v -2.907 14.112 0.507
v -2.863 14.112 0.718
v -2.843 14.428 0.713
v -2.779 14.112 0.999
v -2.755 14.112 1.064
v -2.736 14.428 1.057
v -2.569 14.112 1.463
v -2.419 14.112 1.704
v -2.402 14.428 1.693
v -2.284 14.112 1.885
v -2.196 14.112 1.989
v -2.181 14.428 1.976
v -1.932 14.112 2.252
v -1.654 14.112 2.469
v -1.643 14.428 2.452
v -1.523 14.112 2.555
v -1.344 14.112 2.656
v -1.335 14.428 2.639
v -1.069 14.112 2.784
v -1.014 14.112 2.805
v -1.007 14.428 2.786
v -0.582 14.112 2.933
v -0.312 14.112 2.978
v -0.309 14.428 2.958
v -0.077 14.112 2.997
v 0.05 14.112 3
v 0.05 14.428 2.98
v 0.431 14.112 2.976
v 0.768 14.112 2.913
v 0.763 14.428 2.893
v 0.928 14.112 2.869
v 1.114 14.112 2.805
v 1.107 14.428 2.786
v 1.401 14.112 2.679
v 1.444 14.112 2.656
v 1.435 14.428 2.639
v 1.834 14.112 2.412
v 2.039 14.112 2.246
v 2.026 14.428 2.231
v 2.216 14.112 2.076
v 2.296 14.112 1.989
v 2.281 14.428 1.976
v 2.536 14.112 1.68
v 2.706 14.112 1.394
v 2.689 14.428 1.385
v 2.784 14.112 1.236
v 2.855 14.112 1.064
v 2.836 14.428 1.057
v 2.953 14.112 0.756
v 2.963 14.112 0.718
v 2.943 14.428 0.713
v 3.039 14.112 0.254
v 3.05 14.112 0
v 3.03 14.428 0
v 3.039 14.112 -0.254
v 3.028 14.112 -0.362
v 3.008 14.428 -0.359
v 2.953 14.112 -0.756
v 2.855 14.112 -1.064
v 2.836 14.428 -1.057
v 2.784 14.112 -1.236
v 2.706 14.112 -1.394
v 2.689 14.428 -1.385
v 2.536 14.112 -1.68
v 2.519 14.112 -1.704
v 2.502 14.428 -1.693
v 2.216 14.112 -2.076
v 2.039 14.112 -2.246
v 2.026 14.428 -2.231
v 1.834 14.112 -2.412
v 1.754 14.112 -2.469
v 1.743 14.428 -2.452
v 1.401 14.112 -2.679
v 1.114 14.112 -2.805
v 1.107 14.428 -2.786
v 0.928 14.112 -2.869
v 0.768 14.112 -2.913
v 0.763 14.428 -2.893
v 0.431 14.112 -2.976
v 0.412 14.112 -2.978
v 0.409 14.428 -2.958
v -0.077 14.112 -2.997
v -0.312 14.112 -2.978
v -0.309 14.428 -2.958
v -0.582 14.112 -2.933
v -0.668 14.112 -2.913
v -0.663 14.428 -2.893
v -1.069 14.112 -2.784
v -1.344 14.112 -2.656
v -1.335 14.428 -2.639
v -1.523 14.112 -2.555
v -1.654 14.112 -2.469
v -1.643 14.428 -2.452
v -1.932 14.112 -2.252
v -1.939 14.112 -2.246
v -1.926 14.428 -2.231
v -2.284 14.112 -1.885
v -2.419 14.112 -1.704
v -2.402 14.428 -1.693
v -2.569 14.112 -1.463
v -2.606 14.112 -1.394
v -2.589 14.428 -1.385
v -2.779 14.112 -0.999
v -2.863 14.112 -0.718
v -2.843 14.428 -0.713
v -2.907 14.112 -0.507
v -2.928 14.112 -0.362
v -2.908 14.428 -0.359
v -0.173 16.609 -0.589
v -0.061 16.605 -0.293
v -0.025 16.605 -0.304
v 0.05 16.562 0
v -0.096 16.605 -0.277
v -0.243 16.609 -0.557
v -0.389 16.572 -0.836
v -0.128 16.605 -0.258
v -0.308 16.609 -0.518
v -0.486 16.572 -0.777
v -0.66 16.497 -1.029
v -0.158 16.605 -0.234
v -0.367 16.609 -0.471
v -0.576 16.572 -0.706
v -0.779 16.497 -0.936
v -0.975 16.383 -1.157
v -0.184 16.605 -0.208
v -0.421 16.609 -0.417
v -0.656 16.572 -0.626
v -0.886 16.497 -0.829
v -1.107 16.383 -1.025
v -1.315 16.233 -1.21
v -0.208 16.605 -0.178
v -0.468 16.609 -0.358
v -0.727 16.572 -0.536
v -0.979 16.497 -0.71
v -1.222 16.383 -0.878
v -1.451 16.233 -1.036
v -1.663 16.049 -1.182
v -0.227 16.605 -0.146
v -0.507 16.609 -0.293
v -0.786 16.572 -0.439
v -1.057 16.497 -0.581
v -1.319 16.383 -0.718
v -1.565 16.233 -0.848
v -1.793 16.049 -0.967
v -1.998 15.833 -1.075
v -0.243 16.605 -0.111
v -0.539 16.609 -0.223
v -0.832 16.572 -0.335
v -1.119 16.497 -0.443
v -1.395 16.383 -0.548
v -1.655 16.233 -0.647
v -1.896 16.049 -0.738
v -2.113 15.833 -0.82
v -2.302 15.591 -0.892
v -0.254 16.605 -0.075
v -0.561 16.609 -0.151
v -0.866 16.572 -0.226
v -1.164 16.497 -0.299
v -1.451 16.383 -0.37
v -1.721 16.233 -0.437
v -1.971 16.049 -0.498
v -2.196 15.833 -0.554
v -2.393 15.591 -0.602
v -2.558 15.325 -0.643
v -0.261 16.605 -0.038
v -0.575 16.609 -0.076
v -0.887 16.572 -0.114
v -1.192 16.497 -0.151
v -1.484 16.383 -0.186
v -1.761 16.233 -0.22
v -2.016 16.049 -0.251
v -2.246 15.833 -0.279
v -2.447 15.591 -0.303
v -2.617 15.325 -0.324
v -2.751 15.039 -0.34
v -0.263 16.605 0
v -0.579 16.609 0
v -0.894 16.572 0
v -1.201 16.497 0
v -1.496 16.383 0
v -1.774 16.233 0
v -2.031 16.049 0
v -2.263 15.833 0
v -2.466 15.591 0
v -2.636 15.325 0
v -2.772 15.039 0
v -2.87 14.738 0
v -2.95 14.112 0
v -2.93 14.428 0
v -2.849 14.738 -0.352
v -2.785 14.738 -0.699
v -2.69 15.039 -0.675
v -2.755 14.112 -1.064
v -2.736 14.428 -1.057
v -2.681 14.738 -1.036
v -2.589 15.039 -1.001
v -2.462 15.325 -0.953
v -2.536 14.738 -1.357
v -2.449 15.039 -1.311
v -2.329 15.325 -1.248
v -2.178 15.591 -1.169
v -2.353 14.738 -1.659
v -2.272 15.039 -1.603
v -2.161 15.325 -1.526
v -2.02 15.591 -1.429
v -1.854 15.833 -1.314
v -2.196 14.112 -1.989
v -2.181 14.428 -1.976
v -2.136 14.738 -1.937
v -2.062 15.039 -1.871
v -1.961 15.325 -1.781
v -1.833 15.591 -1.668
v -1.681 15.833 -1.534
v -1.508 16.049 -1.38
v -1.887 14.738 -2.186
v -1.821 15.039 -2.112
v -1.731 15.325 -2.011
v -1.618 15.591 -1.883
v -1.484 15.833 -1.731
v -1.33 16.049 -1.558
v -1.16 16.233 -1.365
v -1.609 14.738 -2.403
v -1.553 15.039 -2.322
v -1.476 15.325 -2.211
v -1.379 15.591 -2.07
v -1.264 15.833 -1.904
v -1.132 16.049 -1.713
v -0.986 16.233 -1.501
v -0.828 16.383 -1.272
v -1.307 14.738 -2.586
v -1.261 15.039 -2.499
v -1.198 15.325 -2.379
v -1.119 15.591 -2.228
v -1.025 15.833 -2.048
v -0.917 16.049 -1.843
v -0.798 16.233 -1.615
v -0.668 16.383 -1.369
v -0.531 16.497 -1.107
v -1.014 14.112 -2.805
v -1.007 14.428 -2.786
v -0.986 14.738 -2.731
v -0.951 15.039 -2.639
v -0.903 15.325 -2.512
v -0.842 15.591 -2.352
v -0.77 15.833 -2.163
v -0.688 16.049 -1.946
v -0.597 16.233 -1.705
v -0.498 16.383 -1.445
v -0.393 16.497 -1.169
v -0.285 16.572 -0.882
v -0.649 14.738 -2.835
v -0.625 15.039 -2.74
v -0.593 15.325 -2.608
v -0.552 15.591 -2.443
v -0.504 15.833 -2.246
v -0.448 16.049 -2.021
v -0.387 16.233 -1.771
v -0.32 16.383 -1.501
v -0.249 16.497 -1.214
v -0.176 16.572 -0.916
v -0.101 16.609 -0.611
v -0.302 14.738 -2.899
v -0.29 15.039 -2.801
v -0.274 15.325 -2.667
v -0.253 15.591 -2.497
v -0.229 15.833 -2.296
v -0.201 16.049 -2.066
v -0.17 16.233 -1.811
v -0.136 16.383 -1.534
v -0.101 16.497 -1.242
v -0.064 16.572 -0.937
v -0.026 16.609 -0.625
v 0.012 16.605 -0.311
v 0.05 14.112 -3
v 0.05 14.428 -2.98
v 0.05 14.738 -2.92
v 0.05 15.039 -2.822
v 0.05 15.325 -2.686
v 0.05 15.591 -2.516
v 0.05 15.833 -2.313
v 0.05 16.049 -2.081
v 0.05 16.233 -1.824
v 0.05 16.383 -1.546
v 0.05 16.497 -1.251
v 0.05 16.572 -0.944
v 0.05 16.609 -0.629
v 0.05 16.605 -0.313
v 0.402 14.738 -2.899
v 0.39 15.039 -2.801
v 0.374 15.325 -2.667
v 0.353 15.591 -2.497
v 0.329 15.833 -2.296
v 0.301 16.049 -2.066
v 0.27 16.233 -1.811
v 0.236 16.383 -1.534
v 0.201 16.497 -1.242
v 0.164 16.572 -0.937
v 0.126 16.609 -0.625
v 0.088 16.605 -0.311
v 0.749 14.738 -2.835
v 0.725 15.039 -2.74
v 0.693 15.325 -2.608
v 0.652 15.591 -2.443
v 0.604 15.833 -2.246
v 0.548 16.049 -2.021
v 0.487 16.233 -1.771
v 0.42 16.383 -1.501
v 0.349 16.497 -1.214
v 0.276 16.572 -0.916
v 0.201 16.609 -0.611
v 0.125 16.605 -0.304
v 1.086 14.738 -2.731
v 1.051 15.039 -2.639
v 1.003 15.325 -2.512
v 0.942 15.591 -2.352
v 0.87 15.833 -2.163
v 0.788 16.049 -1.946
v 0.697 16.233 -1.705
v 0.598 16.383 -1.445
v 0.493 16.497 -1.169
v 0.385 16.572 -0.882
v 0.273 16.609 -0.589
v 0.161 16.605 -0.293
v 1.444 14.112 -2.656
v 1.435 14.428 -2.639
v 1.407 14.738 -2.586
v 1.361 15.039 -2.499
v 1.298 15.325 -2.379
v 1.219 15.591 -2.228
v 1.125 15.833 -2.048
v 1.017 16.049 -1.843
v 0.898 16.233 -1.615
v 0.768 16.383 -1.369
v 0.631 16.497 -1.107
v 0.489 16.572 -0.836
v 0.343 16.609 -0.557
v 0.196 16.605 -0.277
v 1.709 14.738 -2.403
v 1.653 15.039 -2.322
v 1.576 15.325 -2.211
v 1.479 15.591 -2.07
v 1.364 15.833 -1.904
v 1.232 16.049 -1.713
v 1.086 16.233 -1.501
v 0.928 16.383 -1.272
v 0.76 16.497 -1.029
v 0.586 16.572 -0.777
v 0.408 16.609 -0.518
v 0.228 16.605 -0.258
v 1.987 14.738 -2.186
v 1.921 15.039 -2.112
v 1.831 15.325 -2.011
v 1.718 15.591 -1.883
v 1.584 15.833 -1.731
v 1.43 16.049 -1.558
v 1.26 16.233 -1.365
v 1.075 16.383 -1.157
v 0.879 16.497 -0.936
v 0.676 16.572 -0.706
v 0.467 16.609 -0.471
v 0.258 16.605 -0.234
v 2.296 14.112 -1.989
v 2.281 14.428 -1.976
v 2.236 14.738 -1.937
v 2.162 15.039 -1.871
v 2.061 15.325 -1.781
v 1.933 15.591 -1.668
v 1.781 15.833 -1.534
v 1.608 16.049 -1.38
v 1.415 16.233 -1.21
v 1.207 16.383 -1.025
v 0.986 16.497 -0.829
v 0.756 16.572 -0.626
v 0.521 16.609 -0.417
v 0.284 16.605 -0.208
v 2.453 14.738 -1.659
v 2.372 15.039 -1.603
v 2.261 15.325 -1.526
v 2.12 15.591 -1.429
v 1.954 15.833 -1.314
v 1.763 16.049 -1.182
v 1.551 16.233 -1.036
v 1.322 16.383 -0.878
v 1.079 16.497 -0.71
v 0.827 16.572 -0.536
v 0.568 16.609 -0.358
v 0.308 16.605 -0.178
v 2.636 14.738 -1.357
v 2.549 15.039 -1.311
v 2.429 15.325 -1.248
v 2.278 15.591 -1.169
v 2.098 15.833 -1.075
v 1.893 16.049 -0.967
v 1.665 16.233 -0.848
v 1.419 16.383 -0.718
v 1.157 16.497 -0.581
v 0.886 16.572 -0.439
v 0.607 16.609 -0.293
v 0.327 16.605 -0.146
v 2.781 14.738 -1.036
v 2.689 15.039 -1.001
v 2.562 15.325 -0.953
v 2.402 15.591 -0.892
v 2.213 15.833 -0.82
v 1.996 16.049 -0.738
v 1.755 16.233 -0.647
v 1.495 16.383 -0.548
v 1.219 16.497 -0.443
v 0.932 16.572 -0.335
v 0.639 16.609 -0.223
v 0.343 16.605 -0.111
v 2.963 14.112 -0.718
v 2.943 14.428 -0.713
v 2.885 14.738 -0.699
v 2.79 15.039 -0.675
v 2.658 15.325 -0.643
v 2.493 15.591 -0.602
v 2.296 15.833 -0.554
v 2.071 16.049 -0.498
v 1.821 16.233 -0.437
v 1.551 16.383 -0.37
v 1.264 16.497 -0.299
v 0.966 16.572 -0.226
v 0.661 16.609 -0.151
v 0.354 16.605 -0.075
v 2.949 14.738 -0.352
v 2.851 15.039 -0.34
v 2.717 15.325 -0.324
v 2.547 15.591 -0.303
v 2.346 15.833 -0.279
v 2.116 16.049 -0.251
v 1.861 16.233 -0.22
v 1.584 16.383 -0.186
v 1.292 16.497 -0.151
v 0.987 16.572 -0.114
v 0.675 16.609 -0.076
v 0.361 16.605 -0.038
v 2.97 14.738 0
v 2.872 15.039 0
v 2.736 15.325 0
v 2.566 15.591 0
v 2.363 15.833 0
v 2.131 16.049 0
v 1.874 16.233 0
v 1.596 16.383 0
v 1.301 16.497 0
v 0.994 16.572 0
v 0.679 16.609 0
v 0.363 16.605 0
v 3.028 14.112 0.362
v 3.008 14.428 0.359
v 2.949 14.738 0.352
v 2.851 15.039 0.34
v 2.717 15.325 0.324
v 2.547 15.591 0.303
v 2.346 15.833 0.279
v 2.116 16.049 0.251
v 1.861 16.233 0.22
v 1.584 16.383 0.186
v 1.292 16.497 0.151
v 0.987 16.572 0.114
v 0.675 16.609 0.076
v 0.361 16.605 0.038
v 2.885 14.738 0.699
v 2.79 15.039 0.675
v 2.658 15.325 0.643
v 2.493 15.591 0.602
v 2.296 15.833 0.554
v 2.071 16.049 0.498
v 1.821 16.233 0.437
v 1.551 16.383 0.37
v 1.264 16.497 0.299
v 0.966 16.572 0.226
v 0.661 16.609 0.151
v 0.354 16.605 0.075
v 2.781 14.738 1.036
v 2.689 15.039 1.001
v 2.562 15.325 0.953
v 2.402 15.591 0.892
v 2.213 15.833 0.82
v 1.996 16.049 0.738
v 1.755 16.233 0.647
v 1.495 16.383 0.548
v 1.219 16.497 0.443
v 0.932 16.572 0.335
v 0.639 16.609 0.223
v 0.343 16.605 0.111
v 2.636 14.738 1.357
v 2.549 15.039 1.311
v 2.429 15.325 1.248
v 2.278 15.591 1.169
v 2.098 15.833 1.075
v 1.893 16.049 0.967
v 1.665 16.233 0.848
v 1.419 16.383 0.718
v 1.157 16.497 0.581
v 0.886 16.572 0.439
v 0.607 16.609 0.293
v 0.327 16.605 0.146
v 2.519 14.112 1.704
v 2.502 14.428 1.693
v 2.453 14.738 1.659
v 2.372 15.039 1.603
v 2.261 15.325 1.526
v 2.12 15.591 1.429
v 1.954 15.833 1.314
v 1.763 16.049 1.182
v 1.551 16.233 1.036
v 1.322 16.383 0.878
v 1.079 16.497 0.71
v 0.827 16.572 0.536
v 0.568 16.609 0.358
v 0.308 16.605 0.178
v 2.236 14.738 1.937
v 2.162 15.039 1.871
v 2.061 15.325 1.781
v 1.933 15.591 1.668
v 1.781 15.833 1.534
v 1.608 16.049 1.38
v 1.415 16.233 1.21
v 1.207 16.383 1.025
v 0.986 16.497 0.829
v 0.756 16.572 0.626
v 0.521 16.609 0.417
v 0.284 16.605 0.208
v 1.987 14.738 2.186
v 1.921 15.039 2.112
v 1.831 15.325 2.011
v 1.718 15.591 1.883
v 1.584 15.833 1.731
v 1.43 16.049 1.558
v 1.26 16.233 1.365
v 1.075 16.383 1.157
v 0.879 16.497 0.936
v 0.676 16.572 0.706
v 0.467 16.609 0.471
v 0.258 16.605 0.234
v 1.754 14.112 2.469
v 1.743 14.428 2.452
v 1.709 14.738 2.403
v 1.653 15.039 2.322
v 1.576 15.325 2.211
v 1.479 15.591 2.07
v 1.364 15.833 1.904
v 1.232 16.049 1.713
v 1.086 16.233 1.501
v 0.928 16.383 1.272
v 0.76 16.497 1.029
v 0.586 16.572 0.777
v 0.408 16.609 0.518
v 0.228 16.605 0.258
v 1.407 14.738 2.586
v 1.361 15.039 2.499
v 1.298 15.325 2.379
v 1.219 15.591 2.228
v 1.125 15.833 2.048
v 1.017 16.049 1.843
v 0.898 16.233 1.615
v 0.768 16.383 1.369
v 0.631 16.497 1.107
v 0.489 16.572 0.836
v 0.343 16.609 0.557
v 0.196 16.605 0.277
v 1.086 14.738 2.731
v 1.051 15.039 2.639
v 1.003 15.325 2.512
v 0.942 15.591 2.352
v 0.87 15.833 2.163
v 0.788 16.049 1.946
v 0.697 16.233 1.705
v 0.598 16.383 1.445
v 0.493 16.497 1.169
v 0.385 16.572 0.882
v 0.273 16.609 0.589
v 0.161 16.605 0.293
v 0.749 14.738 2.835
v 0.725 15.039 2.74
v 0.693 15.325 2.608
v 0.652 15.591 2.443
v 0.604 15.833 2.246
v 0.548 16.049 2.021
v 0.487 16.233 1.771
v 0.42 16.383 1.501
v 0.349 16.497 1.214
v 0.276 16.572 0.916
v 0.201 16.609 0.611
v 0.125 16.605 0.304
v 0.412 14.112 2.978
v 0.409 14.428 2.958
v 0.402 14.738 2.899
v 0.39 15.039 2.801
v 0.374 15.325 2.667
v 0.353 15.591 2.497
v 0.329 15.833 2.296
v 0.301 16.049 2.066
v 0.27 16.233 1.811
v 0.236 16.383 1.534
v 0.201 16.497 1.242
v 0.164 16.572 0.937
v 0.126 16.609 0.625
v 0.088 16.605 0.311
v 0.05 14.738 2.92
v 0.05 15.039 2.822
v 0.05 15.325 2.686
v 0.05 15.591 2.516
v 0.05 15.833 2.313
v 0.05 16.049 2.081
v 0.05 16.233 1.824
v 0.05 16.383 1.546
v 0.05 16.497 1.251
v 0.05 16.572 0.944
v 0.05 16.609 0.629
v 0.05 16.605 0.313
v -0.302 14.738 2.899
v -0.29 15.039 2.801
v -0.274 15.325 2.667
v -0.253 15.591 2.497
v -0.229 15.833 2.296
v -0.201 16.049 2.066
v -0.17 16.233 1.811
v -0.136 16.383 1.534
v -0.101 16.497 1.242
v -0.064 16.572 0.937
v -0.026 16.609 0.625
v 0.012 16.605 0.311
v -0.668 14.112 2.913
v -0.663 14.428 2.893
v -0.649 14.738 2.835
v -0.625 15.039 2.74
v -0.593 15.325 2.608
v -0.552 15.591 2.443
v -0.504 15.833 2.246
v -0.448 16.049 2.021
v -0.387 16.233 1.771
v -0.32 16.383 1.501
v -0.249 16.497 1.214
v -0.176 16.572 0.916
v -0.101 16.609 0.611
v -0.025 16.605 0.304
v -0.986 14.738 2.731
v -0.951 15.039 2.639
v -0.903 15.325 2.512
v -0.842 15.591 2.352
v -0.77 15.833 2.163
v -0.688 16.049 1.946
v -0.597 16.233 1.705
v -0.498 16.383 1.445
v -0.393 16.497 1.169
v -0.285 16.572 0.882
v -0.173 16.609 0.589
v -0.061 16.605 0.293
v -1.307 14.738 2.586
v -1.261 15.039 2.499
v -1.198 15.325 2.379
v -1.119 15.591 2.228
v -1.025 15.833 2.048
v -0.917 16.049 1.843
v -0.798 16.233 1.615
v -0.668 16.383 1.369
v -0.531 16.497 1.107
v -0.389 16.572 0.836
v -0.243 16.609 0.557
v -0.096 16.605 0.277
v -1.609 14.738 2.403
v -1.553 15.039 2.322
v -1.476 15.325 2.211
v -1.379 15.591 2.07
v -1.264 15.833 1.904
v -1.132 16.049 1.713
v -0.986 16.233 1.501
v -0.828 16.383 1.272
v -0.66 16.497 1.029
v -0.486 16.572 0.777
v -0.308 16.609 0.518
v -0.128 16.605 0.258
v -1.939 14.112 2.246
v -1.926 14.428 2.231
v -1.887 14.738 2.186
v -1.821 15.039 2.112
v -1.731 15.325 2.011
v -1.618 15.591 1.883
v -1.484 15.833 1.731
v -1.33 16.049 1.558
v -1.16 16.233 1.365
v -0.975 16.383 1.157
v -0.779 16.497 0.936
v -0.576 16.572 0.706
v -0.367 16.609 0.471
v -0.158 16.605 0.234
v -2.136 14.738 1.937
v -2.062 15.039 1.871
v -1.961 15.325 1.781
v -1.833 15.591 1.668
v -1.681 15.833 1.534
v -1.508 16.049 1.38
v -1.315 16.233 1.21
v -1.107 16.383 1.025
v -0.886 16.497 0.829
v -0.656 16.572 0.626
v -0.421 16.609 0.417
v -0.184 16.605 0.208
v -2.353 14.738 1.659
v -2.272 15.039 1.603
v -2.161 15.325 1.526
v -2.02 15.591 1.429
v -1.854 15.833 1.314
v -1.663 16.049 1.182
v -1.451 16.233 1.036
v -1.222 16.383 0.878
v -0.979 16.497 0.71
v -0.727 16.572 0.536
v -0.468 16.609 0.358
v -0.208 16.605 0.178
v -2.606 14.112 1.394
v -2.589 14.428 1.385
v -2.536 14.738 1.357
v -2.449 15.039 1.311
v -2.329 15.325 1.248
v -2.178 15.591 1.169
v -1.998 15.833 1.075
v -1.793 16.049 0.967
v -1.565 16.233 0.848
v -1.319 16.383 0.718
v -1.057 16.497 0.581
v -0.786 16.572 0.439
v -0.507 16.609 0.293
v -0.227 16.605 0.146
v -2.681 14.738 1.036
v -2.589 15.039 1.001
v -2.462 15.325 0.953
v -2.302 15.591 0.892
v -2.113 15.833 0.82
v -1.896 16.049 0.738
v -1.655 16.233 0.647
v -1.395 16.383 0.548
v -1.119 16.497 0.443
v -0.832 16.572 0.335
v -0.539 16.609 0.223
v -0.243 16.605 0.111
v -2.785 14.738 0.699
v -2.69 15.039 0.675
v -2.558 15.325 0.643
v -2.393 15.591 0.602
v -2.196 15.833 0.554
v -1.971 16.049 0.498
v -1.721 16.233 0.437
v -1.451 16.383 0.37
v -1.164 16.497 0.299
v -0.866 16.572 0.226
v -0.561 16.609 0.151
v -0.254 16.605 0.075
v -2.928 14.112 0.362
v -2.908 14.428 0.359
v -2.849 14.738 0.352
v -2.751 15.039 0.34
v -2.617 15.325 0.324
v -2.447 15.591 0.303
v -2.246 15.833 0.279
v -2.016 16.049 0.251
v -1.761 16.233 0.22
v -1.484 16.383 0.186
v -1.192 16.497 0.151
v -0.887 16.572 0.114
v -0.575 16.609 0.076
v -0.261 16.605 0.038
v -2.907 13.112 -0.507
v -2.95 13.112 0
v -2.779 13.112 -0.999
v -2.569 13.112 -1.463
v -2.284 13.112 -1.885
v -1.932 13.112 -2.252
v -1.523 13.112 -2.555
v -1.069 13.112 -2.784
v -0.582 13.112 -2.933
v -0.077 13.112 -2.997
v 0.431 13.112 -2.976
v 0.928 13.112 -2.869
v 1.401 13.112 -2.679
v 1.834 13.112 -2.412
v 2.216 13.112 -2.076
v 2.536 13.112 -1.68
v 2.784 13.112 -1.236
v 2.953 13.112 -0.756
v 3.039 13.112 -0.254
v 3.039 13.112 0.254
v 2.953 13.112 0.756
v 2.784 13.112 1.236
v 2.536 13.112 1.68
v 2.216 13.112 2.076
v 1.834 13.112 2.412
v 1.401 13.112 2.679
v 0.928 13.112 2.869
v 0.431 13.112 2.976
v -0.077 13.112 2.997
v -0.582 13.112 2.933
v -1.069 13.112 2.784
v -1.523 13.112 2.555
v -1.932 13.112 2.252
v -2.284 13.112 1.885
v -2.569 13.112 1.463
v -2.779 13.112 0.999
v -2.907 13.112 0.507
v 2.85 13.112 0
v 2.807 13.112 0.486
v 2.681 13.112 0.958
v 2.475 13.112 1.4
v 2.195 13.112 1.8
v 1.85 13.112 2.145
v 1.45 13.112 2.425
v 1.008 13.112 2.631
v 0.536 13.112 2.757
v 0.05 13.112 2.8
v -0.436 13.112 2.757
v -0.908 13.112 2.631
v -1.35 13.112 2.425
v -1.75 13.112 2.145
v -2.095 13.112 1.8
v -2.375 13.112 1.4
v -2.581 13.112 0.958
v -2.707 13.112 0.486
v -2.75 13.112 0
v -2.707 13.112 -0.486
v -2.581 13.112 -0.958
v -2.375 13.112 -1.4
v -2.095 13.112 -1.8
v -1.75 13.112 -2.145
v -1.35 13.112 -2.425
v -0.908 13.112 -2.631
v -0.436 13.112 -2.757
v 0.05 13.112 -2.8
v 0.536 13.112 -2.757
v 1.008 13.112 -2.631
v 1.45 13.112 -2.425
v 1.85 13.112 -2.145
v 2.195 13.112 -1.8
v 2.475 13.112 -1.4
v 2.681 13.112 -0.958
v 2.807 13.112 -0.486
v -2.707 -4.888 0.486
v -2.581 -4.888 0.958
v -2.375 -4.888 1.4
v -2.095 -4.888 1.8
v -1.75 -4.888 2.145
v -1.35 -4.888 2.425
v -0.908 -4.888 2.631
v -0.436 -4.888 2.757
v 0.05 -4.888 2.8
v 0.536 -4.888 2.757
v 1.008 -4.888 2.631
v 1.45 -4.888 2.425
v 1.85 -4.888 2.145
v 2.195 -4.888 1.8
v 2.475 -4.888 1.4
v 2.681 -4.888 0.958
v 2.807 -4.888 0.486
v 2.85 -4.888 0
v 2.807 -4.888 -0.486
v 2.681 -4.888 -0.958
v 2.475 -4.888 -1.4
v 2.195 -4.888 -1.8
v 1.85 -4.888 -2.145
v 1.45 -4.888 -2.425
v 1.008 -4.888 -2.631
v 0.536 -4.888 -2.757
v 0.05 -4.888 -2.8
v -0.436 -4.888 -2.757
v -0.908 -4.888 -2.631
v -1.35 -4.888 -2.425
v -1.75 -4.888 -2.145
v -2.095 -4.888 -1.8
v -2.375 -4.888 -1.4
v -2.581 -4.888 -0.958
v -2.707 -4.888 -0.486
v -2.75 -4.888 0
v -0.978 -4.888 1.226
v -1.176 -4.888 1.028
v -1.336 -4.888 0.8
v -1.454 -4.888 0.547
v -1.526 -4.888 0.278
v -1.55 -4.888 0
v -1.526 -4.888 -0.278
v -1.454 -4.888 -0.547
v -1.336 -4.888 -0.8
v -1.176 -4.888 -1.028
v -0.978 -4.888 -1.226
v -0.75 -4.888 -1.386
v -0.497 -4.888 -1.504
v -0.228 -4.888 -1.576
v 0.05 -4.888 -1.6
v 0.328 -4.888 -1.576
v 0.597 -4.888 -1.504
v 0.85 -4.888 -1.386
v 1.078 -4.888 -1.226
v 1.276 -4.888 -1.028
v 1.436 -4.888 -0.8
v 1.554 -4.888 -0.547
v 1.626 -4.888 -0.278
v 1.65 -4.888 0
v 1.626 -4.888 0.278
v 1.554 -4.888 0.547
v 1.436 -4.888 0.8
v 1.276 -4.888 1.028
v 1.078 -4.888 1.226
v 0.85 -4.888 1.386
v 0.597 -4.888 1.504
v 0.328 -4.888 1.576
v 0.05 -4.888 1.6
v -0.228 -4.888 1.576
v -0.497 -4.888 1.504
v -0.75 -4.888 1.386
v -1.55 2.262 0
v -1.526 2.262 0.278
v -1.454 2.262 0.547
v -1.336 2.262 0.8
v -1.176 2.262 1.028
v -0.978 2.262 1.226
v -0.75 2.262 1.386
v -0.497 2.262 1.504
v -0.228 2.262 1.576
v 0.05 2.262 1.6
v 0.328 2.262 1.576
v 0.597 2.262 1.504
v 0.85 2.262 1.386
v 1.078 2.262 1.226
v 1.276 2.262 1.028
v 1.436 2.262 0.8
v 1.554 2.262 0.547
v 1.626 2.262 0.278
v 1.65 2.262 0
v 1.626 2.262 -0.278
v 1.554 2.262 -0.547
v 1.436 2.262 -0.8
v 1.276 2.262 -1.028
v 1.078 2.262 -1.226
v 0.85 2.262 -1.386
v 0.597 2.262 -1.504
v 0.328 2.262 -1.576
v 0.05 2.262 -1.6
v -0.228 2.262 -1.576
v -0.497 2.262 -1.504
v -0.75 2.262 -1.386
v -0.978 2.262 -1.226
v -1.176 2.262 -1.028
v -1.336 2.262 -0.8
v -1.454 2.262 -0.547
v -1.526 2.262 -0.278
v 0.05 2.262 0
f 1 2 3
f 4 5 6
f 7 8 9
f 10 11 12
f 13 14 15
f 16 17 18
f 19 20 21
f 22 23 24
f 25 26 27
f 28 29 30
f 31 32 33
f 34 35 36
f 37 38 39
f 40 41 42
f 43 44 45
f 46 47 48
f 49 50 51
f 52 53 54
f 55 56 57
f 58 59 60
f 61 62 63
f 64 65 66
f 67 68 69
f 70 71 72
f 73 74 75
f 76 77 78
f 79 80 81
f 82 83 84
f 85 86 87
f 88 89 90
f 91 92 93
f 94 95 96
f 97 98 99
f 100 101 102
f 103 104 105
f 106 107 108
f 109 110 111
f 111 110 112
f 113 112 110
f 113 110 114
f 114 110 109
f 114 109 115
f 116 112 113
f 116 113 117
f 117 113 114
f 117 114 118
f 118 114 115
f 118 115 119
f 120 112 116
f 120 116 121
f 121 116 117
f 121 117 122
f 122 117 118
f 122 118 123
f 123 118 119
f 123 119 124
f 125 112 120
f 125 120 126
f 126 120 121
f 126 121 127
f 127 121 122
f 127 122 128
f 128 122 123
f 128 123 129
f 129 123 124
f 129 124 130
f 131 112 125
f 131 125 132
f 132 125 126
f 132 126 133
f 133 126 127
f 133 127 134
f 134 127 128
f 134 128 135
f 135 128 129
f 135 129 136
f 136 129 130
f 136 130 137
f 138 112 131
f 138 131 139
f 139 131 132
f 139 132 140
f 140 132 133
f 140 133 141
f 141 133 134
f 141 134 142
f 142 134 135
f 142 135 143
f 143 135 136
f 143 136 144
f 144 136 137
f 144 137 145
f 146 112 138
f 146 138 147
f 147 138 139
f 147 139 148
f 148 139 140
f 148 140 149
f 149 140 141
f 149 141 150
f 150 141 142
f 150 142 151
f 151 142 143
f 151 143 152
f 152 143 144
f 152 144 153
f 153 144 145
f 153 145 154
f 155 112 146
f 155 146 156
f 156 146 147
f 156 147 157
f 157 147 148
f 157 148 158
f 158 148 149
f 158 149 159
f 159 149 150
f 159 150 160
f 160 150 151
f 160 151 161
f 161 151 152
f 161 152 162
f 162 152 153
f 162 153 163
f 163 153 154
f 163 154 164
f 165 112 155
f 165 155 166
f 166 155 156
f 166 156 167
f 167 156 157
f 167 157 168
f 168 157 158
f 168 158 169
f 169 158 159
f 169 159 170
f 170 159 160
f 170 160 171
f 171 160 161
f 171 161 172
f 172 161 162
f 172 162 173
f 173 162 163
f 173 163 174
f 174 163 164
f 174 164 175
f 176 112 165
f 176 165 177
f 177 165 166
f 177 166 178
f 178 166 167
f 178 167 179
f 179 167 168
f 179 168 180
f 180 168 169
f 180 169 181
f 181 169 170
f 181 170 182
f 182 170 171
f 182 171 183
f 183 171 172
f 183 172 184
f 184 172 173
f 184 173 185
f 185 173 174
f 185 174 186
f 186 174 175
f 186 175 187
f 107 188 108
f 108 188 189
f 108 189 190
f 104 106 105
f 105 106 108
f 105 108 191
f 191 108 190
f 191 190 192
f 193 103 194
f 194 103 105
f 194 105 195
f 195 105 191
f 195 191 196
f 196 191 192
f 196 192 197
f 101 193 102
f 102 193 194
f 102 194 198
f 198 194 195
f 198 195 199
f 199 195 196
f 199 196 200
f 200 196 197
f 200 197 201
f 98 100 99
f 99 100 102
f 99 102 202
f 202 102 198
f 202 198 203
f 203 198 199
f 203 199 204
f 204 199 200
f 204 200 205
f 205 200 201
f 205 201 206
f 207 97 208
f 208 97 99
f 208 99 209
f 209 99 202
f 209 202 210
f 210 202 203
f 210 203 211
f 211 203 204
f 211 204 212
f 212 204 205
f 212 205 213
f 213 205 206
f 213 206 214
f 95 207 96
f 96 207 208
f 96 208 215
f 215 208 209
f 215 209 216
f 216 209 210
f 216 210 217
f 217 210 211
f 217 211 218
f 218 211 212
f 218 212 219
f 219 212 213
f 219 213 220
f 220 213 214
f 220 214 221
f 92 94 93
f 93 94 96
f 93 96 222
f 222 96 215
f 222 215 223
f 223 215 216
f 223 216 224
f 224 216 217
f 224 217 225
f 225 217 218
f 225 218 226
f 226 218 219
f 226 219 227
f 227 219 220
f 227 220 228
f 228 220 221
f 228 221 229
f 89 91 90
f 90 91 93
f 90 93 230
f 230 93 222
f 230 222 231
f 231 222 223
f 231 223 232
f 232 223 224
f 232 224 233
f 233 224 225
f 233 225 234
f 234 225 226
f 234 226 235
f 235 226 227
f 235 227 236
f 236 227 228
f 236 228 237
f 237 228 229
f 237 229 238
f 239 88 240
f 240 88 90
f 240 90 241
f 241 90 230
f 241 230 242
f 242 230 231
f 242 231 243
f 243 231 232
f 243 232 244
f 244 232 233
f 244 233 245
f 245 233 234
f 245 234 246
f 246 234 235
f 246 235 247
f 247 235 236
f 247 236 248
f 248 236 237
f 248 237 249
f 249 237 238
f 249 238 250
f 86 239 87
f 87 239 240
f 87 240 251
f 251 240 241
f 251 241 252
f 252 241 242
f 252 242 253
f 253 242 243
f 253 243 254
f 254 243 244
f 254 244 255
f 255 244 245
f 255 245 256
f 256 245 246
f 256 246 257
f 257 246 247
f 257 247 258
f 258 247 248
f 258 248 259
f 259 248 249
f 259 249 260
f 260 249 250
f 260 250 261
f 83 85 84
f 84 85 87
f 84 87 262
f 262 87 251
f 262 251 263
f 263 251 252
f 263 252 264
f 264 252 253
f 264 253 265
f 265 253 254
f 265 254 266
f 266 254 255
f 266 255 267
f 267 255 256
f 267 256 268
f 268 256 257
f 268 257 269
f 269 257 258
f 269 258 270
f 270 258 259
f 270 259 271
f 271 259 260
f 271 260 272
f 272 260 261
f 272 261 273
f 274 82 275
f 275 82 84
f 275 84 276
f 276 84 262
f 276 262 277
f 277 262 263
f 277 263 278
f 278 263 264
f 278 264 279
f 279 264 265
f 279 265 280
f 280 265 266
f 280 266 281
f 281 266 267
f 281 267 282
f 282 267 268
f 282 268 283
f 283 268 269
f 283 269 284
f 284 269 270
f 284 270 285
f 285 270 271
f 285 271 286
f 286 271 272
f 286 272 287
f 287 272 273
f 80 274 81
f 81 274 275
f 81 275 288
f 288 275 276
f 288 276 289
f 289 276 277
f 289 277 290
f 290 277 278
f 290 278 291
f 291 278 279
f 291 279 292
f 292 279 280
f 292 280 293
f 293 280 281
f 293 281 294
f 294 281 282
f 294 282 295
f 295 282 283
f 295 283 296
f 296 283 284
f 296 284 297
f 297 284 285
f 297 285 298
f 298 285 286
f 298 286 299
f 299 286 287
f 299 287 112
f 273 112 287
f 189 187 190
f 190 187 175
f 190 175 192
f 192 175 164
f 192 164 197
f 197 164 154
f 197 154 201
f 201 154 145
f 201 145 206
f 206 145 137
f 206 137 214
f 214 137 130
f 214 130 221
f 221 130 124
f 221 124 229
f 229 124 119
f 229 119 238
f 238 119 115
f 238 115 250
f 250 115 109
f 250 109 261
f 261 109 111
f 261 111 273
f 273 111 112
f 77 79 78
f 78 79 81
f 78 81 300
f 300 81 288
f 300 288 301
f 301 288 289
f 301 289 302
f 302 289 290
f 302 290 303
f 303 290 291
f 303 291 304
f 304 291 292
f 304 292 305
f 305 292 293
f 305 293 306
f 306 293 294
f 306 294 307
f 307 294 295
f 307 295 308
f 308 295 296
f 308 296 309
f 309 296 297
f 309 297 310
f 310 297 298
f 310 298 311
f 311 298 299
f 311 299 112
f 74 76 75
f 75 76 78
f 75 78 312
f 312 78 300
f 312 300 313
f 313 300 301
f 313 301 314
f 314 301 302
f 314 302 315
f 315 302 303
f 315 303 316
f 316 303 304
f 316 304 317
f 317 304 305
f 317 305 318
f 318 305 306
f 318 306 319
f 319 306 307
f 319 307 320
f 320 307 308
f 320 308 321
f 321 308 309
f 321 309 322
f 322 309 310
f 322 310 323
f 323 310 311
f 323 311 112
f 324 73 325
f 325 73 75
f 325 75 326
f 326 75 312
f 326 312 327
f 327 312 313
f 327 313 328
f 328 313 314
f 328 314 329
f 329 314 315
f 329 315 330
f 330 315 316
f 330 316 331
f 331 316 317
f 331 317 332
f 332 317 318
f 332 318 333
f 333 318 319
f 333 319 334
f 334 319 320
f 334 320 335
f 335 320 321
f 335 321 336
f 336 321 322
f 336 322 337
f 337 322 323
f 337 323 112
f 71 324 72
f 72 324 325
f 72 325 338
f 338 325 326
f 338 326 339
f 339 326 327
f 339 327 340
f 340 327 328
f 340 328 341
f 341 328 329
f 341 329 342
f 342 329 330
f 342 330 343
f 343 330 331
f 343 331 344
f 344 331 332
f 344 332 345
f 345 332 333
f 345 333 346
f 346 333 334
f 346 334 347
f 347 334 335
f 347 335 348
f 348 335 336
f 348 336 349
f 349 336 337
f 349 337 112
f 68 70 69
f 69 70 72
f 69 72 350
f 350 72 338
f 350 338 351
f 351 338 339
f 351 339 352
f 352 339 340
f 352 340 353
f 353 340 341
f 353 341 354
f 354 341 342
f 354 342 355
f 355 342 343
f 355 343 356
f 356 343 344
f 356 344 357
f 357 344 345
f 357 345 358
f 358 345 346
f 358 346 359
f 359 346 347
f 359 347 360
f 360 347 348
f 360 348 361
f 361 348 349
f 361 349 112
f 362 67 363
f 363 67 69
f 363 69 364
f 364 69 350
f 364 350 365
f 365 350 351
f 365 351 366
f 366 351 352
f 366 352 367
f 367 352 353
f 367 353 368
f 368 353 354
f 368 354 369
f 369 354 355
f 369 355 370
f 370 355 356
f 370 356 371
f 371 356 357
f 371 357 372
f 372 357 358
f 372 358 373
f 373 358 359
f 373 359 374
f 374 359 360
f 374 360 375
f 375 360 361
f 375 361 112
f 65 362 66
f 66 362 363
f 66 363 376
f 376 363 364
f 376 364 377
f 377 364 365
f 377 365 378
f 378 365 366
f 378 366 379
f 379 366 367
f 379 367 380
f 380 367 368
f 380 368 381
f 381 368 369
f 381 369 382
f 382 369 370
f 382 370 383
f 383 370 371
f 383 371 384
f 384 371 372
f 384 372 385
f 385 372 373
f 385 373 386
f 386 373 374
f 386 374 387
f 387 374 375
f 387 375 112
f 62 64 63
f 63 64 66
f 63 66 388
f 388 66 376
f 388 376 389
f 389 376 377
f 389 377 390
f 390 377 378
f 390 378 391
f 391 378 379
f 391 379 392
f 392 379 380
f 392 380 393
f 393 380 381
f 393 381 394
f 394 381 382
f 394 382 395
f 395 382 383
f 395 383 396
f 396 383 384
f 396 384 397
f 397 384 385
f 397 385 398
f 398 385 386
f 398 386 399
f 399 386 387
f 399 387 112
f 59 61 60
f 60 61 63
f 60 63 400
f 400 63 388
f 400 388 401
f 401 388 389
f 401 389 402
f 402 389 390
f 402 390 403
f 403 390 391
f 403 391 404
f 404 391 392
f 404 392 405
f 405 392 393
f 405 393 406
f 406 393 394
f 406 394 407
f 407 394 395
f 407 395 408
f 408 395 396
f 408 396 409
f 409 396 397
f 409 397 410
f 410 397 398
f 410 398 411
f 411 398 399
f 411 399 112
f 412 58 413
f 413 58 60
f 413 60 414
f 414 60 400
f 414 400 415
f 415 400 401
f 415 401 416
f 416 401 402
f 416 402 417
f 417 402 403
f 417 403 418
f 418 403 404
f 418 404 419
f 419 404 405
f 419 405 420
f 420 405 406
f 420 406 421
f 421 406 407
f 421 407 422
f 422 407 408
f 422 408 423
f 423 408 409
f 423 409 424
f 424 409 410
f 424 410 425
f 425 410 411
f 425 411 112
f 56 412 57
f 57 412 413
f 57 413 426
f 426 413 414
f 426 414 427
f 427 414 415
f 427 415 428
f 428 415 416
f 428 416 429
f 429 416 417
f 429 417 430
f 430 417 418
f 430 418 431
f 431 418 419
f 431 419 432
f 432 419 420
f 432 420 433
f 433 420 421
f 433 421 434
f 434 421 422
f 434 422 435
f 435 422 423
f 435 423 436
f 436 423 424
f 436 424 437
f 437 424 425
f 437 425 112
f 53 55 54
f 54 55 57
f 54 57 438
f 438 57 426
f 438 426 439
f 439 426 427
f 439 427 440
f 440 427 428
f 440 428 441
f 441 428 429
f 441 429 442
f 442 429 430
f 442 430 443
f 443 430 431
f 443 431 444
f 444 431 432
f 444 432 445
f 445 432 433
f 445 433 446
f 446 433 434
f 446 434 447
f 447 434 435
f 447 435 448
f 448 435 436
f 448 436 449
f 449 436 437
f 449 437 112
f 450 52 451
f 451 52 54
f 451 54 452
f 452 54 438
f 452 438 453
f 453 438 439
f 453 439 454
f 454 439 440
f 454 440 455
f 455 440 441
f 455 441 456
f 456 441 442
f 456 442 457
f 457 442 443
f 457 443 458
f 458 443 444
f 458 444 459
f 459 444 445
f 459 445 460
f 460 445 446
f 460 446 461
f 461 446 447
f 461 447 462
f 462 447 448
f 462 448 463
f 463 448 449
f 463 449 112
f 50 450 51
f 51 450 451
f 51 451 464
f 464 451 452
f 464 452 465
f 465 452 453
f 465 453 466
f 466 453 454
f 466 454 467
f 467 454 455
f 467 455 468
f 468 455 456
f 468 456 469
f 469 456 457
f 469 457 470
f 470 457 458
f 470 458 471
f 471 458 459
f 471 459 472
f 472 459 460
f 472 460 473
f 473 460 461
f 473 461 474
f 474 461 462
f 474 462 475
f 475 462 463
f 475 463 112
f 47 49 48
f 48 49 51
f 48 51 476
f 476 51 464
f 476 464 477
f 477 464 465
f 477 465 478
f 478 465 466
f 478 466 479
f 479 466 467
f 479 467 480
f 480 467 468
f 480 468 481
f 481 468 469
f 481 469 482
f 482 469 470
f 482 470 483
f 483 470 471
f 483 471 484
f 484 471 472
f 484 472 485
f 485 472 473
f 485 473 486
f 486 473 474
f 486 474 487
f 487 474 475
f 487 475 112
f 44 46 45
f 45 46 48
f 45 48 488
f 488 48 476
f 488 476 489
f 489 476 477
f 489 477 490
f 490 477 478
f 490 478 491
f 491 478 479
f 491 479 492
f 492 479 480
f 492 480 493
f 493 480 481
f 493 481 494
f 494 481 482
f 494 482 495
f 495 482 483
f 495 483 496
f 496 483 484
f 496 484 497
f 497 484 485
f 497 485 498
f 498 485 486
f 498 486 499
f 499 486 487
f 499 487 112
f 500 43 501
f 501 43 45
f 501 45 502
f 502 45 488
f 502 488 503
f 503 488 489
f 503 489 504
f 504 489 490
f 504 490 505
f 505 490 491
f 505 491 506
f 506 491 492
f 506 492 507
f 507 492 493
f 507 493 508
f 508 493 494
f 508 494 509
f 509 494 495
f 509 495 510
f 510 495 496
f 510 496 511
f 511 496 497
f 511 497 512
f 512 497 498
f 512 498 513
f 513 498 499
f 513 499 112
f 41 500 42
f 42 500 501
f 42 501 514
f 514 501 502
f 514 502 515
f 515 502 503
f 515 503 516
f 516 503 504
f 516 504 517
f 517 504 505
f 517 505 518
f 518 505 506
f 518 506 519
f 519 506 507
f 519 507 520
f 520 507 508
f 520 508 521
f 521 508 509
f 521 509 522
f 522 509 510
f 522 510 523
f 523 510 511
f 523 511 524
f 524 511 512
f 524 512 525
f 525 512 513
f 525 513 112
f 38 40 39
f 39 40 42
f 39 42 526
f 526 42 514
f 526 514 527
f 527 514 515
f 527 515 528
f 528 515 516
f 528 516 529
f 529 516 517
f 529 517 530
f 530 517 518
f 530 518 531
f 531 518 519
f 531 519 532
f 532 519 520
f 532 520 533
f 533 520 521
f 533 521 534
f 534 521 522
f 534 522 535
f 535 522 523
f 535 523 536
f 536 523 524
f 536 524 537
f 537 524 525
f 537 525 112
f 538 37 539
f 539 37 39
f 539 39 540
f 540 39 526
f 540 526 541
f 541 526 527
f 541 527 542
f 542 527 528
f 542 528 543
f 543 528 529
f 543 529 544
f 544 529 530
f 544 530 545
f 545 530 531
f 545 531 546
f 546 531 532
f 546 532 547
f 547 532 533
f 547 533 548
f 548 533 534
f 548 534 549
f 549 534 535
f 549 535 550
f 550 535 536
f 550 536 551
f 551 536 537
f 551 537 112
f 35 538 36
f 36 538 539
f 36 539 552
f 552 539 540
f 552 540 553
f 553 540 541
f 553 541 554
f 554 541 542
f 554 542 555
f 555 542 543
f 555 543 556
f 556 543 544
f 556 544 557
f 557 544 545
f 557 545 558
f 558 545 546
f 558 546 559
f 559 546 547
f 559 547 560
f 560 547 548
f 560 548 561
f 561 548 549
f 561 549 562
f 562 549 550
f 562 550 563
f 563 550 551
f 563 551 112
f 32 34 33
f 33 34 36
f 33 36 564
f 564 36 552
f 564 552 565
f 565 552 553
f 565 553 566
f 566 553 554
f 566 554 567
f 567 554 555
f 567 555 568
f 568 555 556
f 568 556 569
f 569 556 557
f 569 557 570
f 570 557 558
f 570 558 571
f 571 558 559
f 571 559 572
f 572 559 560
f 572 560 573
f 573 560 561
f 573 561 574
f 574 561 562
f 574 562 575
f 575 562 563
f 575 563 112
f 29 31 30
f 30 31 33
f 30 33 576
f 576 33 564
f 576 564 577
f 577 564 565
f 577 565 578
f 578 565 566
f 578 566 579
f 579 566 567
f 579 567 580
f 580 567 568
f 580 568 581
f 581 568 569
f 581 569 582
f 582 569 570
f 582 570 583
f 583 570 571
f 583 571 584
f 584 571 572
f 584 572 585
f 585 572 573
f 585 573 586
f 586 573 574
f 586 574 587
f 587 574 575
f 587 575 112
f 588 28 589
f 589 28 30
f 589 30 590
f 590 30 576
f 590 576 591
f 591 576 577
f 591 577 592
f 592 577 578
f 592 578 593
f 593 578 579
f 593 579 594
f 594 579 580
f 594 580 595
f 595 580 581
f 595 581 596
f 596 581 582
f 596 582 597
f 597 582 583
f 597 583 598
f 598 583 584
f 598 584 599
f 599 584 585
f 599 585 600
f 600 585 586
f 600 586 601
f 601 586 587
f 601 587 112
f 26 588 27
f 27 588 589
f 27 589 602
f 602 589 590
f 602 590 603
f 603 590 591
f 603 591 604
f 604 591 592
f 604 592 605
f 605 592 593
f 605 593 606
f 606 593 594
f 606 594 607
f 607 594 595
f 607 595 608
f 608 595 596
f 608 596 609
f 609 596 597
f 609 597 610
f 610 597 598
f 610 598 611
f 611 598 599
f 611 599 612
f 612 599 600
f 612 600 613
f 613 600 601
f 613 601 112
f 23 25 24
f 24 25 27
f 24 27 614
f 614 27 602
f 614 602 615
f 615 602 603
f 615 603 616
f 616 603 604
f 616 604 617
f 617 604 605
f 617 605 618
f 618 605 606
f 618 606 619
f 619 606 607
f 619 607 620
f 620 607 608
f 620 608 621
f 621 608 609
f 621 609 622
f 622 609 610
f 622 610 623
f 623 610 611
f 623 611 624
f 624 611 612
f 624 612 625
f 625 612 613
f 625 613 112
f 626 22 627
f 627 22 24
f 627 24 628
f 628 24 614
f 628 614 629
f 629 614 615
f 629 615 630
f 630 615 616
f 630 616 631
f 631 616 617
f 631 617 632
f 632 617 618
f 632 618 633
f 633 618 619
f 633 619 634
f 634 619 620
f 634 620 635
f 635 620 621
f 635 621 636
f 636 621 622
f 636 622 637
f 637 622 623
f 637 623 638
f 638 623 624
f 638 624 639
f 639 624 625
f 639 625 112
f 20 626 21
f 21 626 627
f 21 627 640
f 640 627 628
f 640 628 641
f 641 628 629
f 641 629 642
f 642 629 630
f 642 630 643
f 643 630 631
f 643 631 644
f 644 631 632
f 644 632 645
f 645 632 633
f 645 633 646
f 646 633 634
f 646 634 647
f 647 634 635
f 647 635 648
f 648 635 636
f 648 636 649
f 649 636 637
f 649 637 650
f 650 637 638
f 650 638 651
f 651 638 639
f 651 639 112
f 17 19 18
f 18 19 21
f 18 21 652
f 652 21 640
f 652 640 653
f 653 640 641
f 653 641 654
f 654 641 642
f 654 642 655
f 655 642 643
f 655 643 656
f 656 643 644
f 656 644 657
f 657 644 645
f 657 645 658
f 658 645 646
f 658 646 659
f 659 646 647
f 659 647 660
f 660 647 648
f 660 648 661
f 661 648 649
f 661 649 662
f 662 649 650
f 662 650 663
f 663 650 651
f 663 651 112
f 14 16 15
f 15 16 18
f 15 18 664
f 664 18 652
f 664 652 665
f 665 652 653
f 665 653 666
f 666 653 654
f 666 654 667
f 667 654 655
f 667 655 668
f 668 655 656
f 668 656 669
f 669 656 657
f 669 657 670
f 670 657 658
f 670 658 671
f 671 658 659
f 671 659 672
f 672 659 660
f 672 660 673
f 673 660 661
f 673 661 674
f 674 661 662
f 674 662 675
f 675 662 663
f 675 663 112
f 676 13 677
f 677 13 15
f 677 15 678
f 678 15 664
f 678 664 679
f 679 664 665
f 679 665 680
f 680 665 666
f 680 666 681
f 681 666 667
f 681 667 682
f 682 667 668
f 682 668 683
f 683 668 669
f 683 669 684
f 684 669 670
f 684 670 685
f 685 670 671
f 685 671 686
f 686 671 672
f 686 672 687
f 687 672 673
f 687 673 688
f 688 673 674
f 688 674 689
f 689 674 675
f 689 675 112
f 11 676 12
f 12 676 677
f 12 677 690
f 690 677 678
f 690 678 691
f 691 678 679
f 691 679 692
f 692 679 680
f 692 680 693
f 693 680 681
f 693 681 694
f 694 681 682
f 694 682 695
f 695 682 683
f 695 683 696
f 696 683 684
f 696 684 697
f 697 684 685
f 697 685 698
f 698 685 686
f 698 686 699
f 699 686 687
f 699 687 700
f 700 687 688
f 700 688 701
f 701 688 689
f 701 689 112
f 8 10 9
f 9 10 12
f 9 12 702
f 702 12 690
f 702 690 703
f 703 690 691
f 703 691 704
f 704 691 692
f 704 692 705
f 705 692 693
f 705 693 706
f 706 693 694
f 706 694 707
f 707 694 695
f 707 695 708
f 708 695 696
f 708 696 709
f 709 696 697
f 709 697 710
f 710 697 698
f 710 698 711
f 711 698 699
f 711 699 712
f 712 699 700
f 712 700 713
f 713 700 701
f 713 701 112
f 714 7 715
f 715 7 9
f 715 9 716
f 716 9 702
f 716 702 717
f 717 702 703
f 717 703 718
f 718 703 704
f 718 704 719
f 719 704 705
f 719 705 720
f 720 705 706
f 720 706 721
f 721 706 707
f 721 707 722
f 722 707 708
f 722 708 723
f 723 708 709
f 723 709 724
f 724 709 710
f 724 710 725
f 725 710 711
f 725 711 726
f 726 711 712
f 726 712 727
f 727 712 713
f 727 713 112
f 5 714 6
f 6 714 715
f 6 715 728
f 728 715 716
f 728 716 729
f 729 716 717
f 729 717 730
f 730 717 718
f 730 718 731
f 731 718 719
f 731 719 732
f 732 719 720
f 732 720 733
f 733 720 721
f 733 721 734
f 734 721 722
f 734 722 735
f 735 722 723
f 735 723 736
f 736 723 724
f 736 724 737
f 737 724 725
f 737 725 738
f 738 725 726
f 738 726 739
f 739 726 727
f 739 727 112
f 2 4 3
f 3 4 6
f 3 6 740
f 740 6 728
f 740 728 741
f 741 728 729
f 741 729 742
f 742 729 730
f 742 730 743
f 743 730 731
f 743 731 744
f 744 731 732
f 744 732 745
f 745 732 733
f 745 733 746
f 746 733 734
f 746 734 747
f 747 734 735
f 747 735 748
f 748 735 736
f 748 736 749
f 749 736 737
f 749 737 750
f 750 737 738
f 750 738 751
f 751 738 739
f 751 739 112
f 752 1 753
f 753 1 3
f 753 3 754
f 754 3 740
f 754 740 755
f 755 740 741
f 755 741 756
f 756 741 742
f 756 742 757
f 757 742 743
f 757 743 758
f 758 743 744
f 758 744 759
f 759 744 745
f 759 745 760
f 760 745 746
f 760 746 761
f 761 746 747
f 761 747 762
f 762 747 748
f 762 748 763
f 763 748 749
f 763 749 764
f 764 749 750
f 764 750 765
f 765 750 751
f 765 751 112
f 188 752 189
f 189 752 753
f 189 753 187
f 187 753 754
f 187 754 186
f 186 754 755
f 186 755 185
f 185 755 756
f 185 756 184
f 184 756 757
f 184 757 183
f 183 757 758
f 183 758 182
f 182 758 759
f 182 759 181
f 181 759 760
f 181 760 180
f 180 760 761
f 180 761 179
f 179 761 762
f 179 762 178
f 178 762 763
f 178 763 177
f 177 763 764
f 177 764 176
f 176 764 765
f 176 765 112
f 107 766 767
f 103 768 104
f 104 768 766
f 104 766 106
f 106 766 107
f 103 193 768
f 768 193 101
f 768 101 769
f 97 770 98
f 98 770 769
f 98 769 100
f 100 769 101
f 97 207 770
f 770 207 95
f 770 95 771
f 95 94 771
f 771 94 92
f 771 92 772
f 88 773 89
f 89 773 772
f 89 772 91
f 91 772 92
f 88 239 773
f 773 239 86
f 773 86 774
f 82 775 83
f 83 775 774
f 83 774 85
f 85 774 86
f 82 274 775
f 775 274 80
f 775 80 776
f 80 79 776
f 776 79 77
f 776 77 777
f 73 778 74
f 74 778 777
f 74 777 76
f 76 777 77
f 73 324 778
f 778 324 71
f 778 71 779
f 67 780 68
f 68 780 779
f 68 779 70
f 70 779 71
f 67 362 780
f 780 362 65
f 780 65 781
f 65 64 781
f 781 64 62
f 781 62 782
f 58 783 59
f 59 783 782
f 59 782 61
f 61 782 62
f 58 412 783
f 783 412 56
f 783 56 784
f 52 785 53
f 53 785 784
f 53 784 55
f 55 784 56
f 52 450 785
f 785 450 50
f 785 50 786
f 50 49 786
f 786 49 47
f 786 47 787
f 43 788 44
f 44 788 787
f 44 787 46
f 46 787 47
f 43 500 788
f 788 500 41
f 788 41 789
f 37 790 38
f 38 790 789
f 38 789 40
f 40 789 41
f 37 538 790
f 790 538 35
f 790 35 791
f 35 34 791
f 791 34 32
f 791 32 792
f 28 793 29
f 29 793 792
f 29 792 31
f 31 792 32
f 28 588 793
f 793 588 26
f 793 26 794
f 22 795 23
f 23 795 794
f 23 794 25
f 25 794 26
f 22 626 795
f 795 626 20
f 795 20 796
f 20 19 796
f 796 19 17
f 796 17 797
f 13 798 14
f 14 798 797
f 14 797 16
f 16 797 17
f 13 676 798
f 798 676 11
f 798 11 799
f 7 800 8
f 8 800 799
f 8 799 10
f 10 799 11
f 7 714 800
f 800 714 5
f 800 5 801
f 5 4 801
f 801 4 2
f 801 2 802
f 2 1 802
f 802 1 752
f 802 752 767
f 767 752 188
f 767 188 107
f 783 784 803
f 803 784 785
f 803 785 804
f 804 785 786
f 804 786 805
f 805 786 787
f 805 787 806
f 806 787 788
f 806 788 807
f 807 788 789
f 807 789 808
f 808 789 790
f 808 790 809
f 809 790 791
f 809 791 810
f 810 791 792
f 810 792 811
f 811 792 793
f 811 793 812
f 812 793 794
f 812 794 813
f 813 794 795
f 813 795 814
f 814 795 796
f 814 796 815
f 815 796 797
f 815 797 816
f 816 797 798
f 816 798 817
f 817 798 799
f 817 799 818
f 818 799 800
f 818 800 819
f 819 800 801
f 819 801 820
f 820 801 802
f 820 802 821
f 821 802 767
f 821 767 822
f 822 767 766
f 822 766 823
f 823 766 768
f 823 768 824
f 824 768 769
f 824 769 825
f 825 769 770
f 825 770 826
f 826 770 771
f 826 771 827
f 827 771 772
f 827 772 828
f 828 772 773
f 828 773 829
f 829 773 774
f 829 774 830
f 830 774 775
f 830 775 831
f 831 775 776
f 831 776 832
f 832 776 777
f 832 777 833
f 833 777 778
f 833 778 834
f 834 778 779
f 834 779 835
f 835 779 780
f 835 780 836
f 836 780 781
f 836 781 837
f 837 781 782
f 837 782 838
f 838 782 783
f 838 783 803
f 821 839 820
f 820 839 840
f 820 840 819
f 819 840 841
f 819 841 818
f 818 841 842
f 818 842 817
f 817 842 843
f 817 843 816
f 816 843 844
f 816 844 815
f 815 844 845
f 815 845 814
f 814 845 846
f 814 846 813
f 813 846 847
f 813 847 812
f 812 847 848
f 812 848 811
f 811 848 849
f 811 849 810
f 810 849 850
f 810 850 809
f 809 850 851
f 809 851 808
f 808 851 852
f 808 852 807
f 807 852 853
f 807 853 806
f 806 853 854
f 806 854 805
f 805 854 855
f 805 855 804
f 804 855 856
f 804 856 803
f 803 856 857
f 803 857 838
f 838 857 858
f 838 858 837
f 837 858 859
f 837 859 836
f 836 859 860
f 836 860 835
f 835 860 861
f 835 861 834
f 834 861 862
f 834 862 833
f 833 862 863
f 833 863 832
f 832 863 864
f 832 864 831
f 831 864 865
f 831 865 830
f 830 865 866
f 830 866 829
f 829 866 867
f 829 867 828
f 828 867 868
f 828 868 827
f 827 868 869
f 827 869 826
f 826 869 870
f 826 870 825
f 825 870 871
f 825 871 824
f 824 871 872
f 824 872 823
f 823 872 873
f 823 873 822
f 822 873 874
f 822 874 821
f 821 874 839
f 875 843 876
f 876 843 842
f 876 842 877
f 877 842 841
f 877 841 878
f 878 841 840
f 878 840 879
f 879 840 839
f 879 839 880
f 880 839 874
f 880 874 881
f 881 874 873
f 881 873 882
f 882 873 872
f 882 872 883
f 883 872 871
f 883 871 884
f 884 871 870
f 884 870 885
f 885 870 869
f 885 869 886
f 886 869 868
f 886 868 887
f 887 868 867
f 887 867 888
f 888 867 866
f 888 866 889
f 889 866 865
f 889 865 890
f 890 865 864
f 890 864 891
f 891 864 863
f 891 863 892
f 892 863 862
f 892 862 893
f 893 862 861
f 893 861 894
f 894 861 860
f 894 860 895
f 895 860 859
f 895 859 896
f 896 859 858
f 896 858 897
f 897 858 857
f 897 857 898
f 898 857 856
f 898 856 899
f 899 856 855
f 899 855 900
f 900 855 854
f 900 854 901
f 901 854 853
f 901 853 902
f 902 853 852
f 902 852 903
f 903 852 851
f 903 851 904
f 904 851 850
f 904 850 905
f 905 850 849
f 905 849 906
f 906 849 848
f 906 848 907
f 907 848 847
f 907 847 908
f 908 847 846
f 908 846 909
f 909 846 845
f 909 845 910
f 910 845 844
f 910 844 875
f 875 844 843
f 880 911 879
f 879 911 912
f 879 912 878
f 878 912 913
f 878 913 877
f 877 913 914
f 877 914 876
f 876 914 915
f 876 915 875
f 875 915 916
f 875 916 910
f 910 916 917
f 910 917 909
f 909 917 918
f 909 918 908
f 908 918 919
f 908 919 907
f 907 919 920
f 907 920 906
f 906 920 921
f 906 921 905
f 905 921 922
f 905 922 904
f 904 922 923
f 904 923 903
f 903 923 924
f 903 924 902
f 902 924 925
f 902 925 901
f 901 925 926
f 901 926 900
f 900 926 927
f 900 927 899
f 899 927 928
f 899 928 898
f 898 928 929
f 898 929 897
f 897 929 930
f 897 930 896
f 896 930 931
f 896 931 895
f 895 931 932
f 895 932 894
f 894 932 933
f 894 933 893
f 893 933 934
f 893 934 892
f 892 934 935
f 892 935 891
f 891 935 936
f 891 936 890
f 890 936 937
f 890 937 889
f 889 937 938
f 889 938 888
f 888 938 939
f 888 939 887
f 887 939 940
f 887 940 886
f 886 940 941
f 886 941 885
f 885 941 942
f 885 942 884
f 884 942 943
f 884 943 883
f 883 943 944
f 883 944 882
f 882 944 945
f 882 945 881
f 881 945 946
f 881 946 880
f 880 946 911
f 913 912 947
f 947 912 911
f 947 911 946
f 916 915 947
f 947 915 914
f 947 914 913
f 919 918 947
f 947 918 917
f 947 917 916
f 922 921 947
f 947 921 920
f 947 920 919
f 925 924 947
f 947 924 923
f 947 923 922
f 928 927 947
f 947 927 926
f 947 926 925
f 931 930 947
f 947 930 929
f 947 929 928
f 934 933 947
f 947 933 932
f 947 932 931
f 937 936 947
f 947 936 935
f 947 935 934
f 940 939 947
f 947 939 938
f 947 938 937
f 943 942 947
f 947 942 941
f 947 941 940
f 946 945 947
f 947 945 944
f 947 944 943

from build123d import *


with BuildPart() as part:
    # Sketch1 → Revolve1 (revolve)
    with BuildSketch(Plane.XY):
        with BuildLine():
            Line((-2.95, 13.11209092), (-2.75, 13.11209092))
            Line((-2.75, 13.11209092), (-2.75, -4.88790908))
            Line((-2.75, -4.88790908), (-1.55, -4.88790908))
            Line((-1.55, -4.88790908), (-1.55, 2.262295082))
            Line((-1.55, 2.262295082), (0.05, 2.262295082))
            Line((0.05, 2.262295082), (0.05, 16.561580663))
            ThreePointArc((0.05, 16.561580663), (-2.03113883, 16.048582593), (-2.95, 14.11209092))
            Line((-2.95, 14.11209092), (-2.95, 13.11209092))
        make_face()
    revolve(axis=Axis((0.05, 16.561580663, 0), (0, -1, 0)))


solid = part.part
